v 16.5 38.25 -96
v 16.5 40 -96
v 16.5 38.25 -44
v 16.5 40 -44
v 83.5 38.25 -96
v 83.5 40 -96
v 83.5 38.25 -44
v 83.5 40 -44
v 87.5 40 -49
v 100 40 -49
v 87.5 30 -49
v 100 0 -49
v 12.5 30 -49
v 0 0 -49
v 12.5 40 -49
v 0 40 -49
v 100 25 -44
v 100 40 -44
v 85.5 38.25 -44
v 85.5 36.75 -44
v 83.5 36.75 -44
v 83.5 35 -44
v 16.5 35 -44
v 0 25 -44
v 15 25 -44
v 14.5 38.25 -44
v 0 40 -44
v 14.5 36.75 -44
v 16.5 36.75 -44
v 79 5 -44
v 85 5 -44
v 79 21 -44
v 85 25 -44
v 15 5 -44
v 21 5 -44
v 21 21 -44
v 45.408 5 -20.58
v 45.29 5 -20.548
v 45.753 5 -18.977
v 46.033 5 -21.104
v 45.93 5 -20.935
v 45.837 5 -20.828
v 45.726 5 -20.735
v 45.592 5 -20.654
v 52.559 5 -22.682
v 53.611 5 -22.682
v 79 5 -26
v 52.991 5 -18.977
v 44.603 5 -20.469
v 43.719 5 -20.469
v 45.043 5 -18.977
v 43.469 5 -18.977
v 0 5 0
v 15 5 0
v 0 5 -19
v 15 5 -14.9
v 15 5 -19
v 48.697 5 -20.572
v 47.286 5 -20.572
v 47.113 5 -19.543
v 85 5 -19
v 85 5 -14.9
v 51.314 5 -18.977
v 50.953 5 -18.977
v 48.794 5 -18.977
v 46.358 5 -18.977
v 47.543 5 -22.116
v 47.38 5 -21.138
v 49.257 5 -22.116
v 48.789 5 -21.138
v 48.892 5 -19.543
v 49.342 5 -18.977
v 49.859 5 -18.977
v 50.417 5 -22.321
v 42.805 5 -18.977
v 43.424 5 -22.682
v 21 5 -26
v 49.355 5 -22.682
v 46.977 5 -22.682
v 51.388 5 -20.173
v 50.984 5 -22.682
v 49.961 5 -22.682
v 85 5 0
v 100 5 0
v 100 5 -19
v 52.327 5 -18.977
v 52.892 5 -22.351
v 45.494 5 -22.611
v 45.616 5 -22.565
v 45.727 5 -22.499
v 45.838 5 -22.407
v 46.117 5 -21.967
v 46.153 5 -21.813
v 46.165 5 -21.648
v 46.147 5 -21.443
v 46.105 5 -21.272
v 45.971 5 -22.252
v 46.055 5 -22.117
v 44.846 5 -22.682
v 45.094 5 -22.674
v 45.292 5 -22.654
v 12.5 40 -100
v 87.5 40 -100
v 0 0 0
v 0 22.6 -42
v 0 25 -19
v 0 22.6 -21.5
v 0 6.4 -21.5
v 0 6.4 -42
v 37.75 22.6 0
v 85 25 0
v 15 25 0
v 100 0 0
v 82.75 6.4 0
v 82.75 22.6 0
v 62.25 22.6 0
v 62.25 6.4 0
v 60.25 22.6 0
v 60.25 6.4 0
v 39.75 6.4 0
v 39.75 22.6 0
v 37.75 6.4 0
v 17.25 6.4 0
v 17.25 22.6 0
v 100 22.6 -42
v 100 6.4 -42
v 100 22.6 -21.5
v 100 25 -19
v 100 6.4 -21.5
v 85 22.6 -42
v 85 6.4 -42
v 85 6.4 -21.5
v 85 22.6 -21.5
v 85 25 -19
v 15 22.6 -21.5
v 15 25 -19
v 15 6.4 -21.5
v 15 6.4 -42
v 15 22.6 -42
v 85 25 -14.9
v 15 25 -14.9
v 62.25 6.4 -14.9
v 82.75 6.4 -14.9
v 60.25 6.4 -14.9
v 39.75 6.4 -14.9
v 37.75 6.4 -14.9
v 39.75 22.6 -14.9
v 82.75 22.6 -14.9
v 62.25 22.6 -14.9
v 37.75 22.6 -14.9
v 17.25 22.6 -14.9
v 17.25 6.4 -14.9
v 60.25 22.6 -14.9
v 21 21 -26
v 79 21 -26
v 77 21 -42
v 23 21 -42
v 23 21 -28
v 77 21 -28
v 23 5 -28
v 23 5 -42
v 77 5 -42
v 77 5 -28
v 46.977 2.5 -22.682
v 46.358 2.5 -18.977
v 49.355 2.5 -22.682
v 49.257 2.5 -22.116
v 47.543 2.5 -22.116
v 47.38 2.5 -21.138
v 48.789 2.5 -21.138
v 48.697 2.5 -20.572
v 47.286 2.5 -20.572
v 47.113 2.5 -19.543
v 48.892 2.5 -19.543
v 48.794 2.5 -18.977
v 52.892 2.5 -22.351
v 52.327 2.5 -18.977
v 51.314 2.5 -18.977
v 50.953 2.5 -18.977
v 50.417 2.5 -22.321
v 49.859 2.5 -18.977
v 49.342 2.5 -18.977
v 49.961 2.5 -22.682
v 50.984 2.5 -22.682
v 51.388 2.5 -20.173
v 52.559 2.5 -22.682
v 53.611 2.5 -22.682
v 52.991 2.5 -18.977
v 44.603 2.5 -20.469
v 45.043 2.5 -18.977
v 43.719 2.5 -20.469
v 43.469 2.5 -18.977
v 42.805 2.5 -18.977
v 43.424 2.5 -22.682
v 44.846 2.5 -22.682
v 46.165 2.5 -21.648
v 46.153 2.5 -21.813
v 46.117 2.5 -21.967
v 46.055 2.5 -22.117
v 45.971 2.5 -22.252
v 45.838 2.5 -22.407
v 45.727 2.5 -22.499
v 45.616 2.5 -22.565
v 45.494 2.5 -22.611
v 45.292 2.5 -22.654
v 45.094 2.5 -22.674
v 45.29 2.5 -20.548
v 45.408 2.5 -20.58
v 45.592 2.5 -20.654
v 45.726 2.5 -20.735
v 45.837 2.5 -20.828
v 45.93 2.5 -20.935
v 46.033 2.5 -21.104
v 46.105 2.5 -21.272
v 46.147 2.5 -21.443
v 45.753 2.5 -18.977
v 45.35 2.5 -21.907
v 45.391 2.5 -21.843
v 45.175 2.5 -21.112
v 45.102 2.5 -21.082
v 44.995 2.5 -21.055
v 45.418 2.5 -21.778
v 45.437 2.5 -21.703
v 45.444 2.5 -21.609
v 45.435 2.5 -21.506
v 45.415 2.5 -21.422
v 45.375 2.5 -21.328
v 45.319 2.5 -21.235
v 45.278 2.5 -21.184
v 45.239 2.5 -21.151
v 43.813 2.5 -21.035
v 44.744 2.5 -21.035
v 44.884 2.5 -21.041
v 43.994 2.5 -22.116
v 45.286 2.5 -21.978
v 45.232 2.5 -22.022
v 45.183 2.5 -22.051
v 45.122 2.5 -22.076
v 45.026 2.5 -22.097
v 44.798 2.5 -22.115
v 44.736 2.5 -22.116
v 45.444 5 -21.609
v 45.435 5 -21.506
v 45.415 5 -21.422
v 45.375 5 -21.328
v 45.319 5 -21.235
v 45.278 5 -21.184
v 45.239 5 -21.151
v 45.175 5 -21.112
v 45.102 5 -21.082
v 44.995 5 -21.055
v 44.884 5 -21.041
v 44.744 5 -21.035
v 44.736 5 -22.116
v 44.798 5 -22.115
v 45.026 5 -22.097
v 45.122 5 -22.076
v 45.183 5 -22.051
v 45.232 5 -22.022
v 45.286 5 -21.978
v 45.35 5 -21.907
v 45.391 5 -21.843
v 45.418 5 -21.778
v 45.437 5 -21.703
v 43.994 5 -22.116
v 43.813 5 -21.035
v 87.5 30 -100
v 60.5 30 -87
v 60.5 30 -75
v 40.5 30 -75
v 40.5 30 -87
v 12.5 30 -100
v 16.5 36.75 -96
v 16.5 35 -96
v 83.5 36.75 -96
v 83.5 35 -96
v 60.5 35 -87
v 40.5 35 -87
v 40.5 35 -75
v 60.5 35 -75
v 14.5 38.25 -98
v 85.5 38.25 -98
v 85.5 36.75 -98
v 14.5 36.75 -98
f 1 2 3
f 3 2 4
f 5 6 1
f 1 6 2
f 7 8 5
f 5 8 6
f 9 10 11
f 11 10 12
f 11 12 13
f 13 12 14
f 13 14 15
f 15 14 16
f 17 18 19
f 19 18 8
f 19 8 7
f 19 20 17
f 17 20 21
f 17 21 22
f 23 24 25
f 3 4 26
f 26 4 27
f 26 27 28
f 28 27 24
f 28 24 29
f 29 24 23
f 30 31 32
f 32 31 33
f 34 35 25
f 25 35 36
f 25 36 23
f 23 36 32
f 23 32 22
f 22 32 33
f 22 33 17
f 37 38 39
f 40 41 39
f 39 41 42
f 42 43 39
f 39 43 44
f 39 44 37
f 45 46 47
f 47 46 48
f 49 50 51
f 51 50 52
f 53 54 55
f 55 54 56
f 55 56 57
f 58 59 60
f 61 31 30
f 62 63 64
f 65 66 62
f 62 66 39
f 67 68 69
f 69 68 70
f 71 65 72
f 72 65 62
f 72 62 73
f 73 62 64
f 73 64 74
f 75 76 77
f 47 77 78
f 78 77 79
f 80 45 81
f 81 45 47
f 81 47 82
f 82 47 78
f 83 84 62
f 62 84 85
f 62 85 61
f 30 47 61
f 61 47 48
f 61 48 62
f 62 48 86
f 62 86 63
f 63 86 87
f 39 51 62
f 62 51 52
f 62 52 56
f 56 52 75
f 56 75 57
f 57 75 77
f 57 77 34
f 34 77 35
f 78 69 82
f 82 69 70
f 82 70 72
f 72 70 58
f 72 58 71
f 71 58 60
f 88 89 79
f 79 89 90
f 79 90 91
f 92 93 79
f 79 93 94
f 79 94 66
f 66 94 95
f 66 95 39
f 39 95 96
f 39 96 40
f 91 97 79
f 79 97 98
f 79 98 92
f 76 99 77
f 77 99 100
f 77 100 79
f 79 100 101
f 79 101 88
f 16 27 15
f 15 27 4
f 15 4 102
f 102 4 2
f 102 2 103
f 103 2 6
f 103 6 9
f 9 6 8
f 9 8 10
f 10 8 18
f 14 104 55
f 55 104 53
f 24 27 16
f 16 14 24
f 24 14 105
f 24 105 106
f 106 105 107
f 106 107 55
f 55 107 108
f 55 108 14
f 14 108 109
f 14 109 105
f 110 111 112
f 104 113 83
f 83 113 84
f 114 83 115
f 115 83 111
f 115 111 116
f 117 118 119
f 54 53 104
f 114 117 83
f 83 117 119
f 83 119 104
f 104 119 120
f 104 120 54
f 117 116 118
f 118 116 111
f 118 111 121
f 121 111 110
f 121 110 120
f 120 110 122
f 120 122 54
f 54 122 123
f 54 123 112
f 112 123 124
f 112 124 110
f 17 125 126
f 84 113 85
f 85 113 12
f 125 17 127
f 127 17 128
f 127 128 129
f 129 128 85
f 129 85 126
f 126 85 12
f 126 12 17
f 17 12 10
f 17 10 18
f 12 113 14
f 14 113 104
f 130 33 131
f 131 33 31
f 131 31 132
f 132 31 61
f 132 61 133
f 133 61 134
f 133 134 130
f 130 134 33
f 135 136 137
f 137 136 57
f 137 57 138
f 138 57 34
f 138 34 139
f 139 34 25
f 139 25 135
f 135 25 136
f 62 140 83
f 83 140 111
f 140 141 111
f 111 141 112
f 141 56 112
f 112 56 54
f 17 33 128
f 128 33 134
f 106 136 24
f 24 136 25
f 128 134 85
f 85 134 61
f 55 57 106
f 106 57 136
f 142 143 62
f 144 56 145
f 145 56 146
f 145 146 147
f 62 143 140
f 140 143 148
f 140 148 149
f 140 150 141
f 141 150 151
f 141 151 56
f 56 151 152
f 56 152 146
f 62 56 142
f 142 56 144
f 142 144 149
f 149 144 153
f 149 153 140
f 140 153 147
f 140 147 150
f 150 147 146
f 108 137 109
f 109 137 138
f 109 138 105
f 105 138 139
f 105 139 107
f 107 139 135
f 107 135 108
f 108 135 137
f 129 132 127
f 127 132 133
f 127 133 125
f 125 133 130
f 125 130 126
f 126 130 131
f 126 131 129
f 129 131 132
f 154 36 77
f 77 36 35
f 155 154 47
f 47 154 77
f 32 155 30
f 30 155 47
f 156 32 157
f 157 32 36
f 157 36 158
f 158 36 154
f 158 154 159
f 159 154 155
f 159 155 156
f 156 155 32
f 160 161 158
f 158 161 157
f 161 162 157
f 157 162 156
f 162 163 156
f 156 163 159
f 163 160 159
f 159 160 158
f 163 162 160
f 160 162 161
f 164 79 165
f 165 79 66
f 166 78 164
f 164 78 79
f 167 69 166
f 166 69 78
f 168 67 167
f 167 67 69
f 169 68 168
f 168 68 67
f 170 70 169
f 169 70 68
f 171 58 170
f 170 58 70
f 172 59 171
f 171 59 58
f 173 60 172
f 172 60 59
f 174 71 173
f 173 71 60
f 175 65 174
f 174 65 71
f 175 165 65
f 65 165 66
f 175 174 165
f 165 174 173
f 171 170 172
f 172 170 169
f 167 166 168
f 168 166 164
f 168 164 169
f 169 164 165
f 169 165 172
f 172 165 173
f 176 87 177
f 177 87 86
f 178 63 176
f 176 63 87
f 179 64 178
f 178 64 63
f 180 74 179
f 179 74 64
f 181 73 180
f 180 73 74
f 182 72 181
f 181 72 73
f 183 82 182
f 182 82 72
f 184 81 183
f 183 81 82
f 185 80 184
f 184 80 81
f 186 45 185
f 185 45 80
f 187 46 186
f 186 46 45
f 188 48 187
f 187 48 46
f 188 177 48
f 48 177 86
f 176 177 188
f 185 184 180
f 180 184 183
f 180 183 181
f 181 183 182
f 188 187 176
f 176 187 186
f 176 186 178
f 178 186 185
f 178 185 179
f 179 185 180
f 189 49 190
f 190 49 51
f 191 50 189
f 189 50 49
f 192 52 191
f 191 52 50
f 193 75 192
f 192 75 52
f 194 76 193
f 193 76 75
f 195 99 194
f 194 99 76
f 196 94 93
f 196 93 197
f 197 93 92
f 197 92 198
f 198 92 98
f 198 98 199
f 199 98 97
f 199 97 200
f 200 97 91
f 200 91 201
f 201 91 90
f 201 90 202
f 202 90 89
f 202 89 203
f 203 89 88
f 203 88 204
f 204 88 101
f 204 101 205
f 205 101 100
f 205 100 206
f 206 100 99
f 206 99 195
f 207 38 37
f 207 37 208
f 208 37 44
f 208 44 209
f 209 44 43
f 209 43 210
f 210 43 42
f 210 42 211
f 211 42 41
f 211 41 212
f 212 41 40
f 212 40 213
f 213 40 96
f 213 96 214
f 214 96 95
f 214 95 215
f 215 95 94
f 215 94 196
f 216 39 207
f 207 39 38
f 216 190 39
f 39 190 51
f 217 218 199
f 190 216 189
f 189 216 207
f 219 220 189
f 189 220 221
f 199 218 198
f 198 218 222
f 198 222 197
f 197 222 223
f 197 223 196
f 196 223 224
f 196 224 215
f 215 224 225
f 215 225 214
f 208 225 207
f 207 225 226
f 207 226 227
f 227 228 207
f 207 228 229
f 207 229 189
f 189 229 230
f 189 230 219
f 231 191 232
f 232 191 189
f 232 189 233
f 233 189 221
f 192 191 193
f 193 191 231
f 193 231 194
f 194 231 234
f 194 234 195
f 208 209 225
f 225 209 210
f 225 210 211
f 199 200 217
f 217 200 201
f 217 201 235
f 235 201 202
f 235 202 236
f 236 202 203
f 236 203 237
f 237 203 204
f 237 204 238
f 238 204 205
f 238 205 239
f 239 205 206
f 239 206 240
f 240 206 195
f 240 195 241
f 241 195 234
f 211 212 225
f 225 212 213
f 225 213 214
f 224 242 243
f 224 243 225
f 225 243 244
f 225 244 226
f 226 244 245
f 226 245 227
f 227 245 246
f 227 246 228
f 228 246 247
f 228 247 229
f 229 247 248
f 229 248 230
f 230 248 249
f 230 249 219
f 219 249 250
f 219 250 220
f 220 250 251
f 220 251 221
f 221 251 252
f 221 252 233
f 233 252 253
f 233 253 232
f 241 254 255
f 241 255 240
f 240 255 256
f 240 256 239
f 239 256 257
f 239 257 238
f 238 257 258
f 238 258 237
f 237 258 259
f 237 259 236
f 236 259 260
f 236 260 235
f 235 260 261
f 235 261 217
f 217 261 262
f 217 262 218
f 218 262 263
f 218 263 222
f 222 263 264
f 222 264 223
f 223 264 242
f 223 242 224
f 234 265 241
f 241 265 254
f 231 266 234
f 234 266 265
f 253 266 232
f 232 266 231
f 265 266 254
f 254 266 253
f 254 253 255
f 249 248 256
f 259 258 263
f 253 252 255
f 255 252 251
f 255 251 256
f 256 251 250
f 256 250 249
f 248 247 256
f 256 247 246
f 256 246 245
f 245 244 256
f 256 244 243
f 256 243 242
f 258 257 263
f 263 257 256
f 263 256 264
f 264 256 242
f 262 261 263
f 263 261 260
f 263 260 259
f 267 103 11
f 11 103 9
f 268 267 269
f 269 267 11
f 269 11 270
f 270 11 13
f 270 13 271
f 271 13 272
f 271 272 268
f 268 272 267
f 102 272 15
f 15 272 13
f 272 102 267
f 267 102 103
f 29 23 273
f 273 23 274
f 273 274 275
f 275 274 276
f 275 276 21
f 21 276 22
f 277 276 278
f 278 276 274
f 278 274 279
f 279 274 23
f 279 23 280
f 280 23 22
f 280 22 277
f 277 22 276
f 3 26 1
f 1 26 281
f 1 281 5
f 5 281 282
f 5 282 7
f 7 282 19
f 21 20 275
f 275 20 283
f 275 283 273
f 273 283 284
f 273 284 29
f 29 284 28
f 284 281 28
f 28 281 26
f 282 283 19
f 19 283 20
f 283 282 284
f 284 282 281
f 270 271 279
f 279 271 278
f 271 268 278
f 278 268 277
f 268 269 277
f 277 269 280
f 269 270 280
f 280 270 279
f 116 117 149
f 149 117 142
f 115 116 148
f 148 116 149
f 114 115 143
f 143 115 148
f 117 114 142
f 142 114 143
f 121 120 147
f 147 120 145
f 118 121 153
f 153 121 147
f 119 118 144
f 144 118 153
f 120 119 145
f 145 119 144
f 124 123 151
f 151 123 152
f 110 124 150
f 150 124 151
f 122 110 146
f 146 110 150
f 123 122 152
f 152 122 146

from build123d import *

# Parameters (mm, degrees)
CROQUIS1_W              = 100
CROQUIS1_H              = 49
SALIENTE_EXTRUIR1_DEPTH = 40
CROQUIS2_W              = 70
CROQUIS2_H              = 29
CORTAR_EXTRUIR1_DEPTH   = 35
CORTAR_EXTRUIR2_DEPTH   = 14.9
CORTAR_EXTRUIR4_DEPTH   = 119.325821358
CROQUIS6_W              = 20.5
CROQUIS6_H              = 16.2
CORTAR_EXTRUIR6_DEPTH   = 119.325821358
CROQUIS7_W              = 58
CROQUIS7_H              = 18
SALIENTE_EXTRUIR2_DEPTH = 16
CROQUIS8_W              = 54
CROQUIS8_H              = 14
CORTAR_EXTRUIR7_DEPTH   = 16
ENVOLVER2_START         = -2.5
ENVOLVER2_DEPTH         = 2.5
CROQUIS11_W             = 75
CROQUIS11_H             = 10
SALIENTE_EXTRUIR3_DEPTH = 51
CROQUIS12_W             = 67
CROQUIS12_H             = 52
CORTAR_EXTRUIR8_DEPTH   = 5
CROQUIS13_W             = 71
CROQUIS13_H             = 1.5
CORTAR_EXTRUIR9_DEPTH   = 54
CROQUIS14_W             = 20
CROQUIS14_H             = 12
CORTAR_EXTRUIR10_DEPTH  = 5
CORTAR_EXTRUIR11_REACH  = 148.969
CROQUIS5_W              = 20.5
CROQUIS5_H              = 16.2


# Read off the part's stored shape, not the designer's step: Envolver2
with BuildPart() as part:
    # Croquis1 → Saliente-Extruir1 (new body)
    with BuildSketch(Plane(origin=(0, 0, 0), x_dir=(1, 0, 0), z_dir=(0, 1, 0))):
        with Locations((50, 24.5)):
            Rectangle(CROQUIS1_W, CROQUIS1_H)
    extrude(amount=SALIENTE_EXTRUIR1_DEPTH)

    # Croquis2 → Cortar-Extruir1 (cut)
    with BuildSketch(Plane(origin=(0, 40, 0), x_dir=(1, 0, 0), z_dir=(0, 1, 0))):
        with Locations((50, 29.5)):
            Rectangle(CROQUIS2_W, CROQUIS2_H)
    extrude(amount=-CORTAR_EXTRUIR1_DEPTH, mode=Mode.SUBTRACT)

    # Croquis3 → Cortar-Extruir2 (cut)
    with BuildSketch(Plane.XY):
        Polygon((15, 5), (15, 25), (85, 25), (85, 5), (100, 5), (100, 40), (0, 40), (0, 5), align=None)
    extrude(amount=-CORTAR_EXTRUIR2_DEPTH, mode=Mode.SUBTRACT)

    # Croquis4 → Cortar-Extruir4 (cut, through all)
    with BuildSketch(Plane.ZY):
        Polygon((-44, 25), (-19, 25), (-19, 5), (-14.9, 5), (-14.9, 40), (-44, 40), align=None)
    extrude(amount=-CORTAR_EXTRUIR4_DEPTH, mode=Mode.SUBTRACT)

    # Croquis6 → Cortar-Extruir6 (cut, through all)
    with BuildSketch(Plane(origin=(100, 0, 0), x_dir=(0, 0, -1), z_dir=(1, 0, 0))):
        with Locations((31.75, 14.5)):
            Rectangle(CROQUIS6_W, CROQUIS6_H)
    extrude(amount=-CORTAR_EXTRUIR6_DEPTH, mode=Mode.SUBTRACT)

    # Croquis7 → Saliente-Extruir2 (add)
    with BuildSketch(Plane(origin=(0, 5, 0), x_dir=(1, 0, 0), z_dir=(0, 1, 0))):
        with Locations((50, 35)):
            Rectangle(CROQUIS7_W, CROQUIS7_H)
    extrude(amount=SALIENTE_EXTRUIR2_DEPTH)

    # Croquis8 → Cortar-Extruir7 (cut)
    with BuildSketch(Plane(origin=(0, 21, 0), x_dir=(1, 0, 0), z_dir=(0, 1, 0))):
        with Locations((50, 35)):
            Rectangle(CROQUIS8_W, CROQUIS8_H)
    extrude(amount=-CORTAR_EXTRUIR7_DEPTH, mode=Mode.SUBTRACT)

    # Envolver2 outline → Envolver2 (cut)
    # profile 1 of 3: a face of its own
    with BuildSketch(Plane(origin=(0, 5, 0), x_dir=(1, 0, 0), z_dir=(0, 1, 0)).offset(ENVOLVER2_START)):
        with BuildLine():
            add(Edge.make_bspline(
                [(44.845927513, 22.682039813), (44.880502524, 22.681581101), (44.94779002, 22.680688388), (45.045978034, 22.678103561), (45.138406194, 22.671034857), (45.225422346, 22.663758255), (45.306894242, 22.652117669), (45.382891805, 22.638865253), (45.453428219, 22.622573117), (45.519399834, 22.604194379), (45.582065701, 22.58175166), (45.642294727, 22.553081251), (45.700763218, 22.518735345), (45.757273689, 22.477750733), (45.813128977, 22.432374893), (45.865885411, 22.37921084), (45.918377238, 22.321807714), (45.967578278, 22.25830401), (46.01447324, 22.191680732), (46.054376208, 22.120908747), (46.088223994, 22.047966819), (46.117214563, 21.973058038), (46.136979973, 21.894799291), (46.154181469, 21.814812457), (46.162464556, 21.732060085), (46.163897144, 21.676148523), (46.164618555, 21.647993057)],
                knots=[0, 0, 0, 0, 0.054369818, 0.105810783, 0.1543913, 0.200099433, 0.243069893, 0.283740822, 0.321360744, 0.356845277, 0.391373506, 0.42587086, 0.461574928, 0.497826917, 0.535543491, 0.574581255, 0.615459073, 0.657779879, 0.700797841, 0.743450957, 0.785305491, 0.827181235, 0.869502041, 0.912065543, 0.955718718, 1, 1, 1, 1], degree=3))
            Line((44.845927513, 22.682039813), (43.424314244, 22.682039813))
            Line((43.424314244, 22.682039813), (42.805172718, 18.976839617))
            Line((42.805172718, 18.976839617), (43.469342719, 18.976839617))
            Line((43.469342719, 18.976839617), (43.718607489, 20.469211918))
            Line((43.718607489, 20.469211918), (44.603095383, 20.469211918))
            Line((44.603095383, 20.469211918), (45.04292709, 18.976839617))
            Line((45.04292709, 18.976839617), (45.752929645, 18.976839617))
            Line((45.752929645, 18.976839617), (45.28977962, 20.548011749))
            add(Edge.make_bspline(
                [(46.164618555, 21.647993057), (46.164091676, 21.617670303), (46.163039403, 21.5571103), (46.151744736, 21.467468845), (46.13622668, 21.379126232), (46.112503265, 21.292592771), (46.082048693, 21.207680933), (46.044780457, 21.124441143), (46.001130757, 21.043108672), (45.951712013, 20.9635574), (45.895224481, 20.887990565), (45.830214645, 20.819272615), (45.758276279, 20.757071565), (45.678885267, 20.701205138), (45.592072867, 20.652370985), (45.497799172, 20.610367641), (45.396617343, 20.574987864), (45.325850603, 20.557119534), (45.28977962, 20.548011749)],
                knots=[0, 0, 0, 0, 0.059520551, 0.118873267, 0.177208837, 0.235565778, 0.294841411, 0.354222133, 0.414510544, 0.476000381, 0.538010758, 0.599455515, 0.661405537, 0.724496825, 0.78978963, 0.856706752, 0.926961053, 1, 1, 1, 1], degree=3))
        make_face()
        with BuildLine():
            add(Edge.make_bspline(
                [(44.743809366, 21.03528417), (44.778129381, 21.03600119), (44.843652036, 21.0373701), (44.937526666, 21.044910102), (45.022020151, 21.059216882), (45.097465695, 21.079213334), (45.164300411, 21.104537257), (45.221481868, 21.136836672), (45.270624581, 21.17399479), (45.32077283, 21.232312946), (45.36864261, 21.310567266), (45.413007527, 21.407196099), (45.438530205, 21.507321555), (45.442292151, 21.574957755), (45.444162962, 21.608593141)],
                knots=[0, 0, 0, 0, 0.099664188, 0.190275618, 0.273183536, 0.348129931, 0.416633313, 0.480054439, 0.538277477, 0.594505454, 0.702244126, 0.80362549, 0.902343236, 1, 1, 1, 1], degree=3))
            Line((44.743809366, 21.03528417), (43.812684837, 21.03528417))
            Line((43.812684837, 21.03528417), (43.993602816, 22.115967561))
            Line((43.993602816, 22.115967561), (44.735768567, 22.115967561))
            add(Edge.make_bspline(
                [(45.444162962, 21.608593141), (45.443321191, 21.636863214), (45.441681994, 21.691914124), (45.421908744, 21.770970842), (45.392768442, 21.844328967), (45.35019923, 21.909220717), (45.300609579, 21.965653441), (45.246923641, 22.013950522), (45.187891151, 22.050903022), (45.122329195, 22.077622199), (45.046506806, 22.09459194), (44.957252302, 22.107151834), (44.85196106, 22.115045121), (44.776255138, 22.115646142), (44.735768567, 22.115967561)],
                knots=[0, 0, 0, 0, 0.084973229, 0.165470167, 0.24404472, 0.32176826, 0.397881214, 0.469968558, 0.538528016, 0.606605512, 0.682202732, 0.771959831, 0.878046995, 1, 1, 1, 1], degree=3))
        make_face(mode=Mode.SUBTRACT)
    # profile 2 of 3: a face of its own
    with BuildSketch(Plane(origin=(0, 5, 0), x_dir=(1, 0, 0), z_dir=(0, 1, 0)).offset(ENVOLVER2_START)):
        Polygon((46.976739258, 22.682039813), (46.357597732, 18.976839617), (48.79395984, 18.976839617), (48.892057588, 19.542911869), (47.113432841, 19.542911869), (47.285505941, 20.572134146), (48.696666171, 20.572134146), (48.78913536, 21.138206398), (47.379583289, 21.138206398), (47.54281151, 22.115967561), (49.257109864, 22.115967561), (49.355207612, 22.682039813), align=None)
    # profile 3 of 3: a face of its own
    with BuildSketch(Plane(origin=(0, 5, 0), x_dir=(1, 0, 0), z_dir=(0, 1, 0)).offset(ENVOLVER2_START)):
        Polygon((50.984273497, 22.682039813), (49.96148386, 22.682039813), (49.342342334, 18.976839617), (49.858561632, 18.976839617), (50.417397165, 22.321007936), (50.952914381, 18.976839617), (51.313946257, 18.976839617), (52.891551028, 22.350758892), (52.327086936, 18.976839617), (52.991256936, 18.976839617), (53.611202541, 22.682039813), (52.559466028, 22.682039813), (51.387921608, 20.172506434), align=None)
    extrude(amount=ENVOLVER2_DEPTH, mode=Mode.SUBTRACT)

    # Croquis11 → Saliente-Extruir3 (add)
    with BuildSketch(Plane(origin=(0, 0, -49), x_dir=(-1, 0, 0), z_dir=(0, 0, -1))):
        with Locations((-50, 35)):
            Rectangle(CROQUIS11_W, CROQUIS11_H)
    extrude(amount=SALIENTE_EXTRUIR3_DEPTH)

    # Croquis12 → Cortar-Extruir8 (cut)
    with BuildSketch(Plane(origin=(0, 40, 0), x_dir=(1, 0, 0), z_dir=(0, 1, 0))):
        with Locations((50, 70)):
            Rectangle(CROQUIS12_W, CROQUIS12_H)
    extrude(amount=-CORTAR_EXTRUIR8_DEPTH, mode=Mode.SUBTRACT)

    # Croquis13 → Cortar-Extruir9 (cut)
    with BuildSketch(Plane.XY.offset(-44)):
        with Locations((50, 37.5)):
            Rectangle(CROQUIS13_W, CROQUIS13_H)
    extrude(amount=-CORTAR_EXTRUIR9_DEPTH, mode=Mode.SUBTRACT)

    # Croquis14 → Cortar-Extruir10 (cut)
    with BuildSketch(Plane(origin=(0, 35, 0), x_dir=(1, 0, 0), z_dir=(0, 1, 0))):
        with Locations((50.5, 81)):
            Rectangle(CROQUIS14_W, CROQUIS14_H)
    extrude(amount=-CORTAR_EXTRUIR10_DEPTH, mode=Mode.SUBTRACT)

    # Croquis5 → Cortar-Extruir11 (cut, up to next)
    with BuildSketch(Plane.XY, mode=Mode.PRIVATE) as cortar_extruir11_sk1:
        with Locations((27.5, 14.5)):
            Rectangle(CROQUIS5_W, CROQUIS5_H)
    cortar_extruir11_tool1 = extrude(cortar_extruir11_sk1.sketch, amount=-CORTAR_EXTRUIR11_REACH, mode=Mode.PRIVATE) & part.part
    # Croquis5 → Cortar-Extruir11 (cut, up to next)
    with BuildSketch(Plane.XY, mode=Mode.PRIVATE) as cortar_extruir11_sk2:
        with Locations((50, 14.5)):
            Rectangle(CROQUIS5_W, CROQUIS5_H)
    cortar_extruir11_tool2 = extrude(cortar_extruir11_sk2.sketch, amount=-CORTAR_EXTRUIR11_REACH, mode=Mode.PRIVATE) & part.part
    # Croquis5 → Cortar-Extruir11 (cut, up to next)
    with BuildSketch(Plane.XY, mode=Mode.PRIVATE) as cortar_extruir11_sk3:
        with Locations((72.5, 14.5)):
            Rectangle(CROQUIS5_W, CROQUIS5_H)
    cortar_extruir11_tool3 = extrude(cortar_extruir11_sk3.sketch, amount=-CORTAR_EXTRUIR11_REACH, mode=Mode.PRIVATE) & part.part
    add(cortar_extruir11_tool1.solids().sort_by_distance((27.5, 14.5, 0))[0], mode=Mode.SUBTRACT)
    add(cortar_extruir11_tool2.solids().sort_by_distance((50, 14.5, 0))[0], mode=Mode.SUBTRACT)
    add(cortar_extruir11_tool3.solids().sort_by_distance((72.5, 14.5, 0))[0], mode=Mode.SUBTRACT)


solid = part.part
